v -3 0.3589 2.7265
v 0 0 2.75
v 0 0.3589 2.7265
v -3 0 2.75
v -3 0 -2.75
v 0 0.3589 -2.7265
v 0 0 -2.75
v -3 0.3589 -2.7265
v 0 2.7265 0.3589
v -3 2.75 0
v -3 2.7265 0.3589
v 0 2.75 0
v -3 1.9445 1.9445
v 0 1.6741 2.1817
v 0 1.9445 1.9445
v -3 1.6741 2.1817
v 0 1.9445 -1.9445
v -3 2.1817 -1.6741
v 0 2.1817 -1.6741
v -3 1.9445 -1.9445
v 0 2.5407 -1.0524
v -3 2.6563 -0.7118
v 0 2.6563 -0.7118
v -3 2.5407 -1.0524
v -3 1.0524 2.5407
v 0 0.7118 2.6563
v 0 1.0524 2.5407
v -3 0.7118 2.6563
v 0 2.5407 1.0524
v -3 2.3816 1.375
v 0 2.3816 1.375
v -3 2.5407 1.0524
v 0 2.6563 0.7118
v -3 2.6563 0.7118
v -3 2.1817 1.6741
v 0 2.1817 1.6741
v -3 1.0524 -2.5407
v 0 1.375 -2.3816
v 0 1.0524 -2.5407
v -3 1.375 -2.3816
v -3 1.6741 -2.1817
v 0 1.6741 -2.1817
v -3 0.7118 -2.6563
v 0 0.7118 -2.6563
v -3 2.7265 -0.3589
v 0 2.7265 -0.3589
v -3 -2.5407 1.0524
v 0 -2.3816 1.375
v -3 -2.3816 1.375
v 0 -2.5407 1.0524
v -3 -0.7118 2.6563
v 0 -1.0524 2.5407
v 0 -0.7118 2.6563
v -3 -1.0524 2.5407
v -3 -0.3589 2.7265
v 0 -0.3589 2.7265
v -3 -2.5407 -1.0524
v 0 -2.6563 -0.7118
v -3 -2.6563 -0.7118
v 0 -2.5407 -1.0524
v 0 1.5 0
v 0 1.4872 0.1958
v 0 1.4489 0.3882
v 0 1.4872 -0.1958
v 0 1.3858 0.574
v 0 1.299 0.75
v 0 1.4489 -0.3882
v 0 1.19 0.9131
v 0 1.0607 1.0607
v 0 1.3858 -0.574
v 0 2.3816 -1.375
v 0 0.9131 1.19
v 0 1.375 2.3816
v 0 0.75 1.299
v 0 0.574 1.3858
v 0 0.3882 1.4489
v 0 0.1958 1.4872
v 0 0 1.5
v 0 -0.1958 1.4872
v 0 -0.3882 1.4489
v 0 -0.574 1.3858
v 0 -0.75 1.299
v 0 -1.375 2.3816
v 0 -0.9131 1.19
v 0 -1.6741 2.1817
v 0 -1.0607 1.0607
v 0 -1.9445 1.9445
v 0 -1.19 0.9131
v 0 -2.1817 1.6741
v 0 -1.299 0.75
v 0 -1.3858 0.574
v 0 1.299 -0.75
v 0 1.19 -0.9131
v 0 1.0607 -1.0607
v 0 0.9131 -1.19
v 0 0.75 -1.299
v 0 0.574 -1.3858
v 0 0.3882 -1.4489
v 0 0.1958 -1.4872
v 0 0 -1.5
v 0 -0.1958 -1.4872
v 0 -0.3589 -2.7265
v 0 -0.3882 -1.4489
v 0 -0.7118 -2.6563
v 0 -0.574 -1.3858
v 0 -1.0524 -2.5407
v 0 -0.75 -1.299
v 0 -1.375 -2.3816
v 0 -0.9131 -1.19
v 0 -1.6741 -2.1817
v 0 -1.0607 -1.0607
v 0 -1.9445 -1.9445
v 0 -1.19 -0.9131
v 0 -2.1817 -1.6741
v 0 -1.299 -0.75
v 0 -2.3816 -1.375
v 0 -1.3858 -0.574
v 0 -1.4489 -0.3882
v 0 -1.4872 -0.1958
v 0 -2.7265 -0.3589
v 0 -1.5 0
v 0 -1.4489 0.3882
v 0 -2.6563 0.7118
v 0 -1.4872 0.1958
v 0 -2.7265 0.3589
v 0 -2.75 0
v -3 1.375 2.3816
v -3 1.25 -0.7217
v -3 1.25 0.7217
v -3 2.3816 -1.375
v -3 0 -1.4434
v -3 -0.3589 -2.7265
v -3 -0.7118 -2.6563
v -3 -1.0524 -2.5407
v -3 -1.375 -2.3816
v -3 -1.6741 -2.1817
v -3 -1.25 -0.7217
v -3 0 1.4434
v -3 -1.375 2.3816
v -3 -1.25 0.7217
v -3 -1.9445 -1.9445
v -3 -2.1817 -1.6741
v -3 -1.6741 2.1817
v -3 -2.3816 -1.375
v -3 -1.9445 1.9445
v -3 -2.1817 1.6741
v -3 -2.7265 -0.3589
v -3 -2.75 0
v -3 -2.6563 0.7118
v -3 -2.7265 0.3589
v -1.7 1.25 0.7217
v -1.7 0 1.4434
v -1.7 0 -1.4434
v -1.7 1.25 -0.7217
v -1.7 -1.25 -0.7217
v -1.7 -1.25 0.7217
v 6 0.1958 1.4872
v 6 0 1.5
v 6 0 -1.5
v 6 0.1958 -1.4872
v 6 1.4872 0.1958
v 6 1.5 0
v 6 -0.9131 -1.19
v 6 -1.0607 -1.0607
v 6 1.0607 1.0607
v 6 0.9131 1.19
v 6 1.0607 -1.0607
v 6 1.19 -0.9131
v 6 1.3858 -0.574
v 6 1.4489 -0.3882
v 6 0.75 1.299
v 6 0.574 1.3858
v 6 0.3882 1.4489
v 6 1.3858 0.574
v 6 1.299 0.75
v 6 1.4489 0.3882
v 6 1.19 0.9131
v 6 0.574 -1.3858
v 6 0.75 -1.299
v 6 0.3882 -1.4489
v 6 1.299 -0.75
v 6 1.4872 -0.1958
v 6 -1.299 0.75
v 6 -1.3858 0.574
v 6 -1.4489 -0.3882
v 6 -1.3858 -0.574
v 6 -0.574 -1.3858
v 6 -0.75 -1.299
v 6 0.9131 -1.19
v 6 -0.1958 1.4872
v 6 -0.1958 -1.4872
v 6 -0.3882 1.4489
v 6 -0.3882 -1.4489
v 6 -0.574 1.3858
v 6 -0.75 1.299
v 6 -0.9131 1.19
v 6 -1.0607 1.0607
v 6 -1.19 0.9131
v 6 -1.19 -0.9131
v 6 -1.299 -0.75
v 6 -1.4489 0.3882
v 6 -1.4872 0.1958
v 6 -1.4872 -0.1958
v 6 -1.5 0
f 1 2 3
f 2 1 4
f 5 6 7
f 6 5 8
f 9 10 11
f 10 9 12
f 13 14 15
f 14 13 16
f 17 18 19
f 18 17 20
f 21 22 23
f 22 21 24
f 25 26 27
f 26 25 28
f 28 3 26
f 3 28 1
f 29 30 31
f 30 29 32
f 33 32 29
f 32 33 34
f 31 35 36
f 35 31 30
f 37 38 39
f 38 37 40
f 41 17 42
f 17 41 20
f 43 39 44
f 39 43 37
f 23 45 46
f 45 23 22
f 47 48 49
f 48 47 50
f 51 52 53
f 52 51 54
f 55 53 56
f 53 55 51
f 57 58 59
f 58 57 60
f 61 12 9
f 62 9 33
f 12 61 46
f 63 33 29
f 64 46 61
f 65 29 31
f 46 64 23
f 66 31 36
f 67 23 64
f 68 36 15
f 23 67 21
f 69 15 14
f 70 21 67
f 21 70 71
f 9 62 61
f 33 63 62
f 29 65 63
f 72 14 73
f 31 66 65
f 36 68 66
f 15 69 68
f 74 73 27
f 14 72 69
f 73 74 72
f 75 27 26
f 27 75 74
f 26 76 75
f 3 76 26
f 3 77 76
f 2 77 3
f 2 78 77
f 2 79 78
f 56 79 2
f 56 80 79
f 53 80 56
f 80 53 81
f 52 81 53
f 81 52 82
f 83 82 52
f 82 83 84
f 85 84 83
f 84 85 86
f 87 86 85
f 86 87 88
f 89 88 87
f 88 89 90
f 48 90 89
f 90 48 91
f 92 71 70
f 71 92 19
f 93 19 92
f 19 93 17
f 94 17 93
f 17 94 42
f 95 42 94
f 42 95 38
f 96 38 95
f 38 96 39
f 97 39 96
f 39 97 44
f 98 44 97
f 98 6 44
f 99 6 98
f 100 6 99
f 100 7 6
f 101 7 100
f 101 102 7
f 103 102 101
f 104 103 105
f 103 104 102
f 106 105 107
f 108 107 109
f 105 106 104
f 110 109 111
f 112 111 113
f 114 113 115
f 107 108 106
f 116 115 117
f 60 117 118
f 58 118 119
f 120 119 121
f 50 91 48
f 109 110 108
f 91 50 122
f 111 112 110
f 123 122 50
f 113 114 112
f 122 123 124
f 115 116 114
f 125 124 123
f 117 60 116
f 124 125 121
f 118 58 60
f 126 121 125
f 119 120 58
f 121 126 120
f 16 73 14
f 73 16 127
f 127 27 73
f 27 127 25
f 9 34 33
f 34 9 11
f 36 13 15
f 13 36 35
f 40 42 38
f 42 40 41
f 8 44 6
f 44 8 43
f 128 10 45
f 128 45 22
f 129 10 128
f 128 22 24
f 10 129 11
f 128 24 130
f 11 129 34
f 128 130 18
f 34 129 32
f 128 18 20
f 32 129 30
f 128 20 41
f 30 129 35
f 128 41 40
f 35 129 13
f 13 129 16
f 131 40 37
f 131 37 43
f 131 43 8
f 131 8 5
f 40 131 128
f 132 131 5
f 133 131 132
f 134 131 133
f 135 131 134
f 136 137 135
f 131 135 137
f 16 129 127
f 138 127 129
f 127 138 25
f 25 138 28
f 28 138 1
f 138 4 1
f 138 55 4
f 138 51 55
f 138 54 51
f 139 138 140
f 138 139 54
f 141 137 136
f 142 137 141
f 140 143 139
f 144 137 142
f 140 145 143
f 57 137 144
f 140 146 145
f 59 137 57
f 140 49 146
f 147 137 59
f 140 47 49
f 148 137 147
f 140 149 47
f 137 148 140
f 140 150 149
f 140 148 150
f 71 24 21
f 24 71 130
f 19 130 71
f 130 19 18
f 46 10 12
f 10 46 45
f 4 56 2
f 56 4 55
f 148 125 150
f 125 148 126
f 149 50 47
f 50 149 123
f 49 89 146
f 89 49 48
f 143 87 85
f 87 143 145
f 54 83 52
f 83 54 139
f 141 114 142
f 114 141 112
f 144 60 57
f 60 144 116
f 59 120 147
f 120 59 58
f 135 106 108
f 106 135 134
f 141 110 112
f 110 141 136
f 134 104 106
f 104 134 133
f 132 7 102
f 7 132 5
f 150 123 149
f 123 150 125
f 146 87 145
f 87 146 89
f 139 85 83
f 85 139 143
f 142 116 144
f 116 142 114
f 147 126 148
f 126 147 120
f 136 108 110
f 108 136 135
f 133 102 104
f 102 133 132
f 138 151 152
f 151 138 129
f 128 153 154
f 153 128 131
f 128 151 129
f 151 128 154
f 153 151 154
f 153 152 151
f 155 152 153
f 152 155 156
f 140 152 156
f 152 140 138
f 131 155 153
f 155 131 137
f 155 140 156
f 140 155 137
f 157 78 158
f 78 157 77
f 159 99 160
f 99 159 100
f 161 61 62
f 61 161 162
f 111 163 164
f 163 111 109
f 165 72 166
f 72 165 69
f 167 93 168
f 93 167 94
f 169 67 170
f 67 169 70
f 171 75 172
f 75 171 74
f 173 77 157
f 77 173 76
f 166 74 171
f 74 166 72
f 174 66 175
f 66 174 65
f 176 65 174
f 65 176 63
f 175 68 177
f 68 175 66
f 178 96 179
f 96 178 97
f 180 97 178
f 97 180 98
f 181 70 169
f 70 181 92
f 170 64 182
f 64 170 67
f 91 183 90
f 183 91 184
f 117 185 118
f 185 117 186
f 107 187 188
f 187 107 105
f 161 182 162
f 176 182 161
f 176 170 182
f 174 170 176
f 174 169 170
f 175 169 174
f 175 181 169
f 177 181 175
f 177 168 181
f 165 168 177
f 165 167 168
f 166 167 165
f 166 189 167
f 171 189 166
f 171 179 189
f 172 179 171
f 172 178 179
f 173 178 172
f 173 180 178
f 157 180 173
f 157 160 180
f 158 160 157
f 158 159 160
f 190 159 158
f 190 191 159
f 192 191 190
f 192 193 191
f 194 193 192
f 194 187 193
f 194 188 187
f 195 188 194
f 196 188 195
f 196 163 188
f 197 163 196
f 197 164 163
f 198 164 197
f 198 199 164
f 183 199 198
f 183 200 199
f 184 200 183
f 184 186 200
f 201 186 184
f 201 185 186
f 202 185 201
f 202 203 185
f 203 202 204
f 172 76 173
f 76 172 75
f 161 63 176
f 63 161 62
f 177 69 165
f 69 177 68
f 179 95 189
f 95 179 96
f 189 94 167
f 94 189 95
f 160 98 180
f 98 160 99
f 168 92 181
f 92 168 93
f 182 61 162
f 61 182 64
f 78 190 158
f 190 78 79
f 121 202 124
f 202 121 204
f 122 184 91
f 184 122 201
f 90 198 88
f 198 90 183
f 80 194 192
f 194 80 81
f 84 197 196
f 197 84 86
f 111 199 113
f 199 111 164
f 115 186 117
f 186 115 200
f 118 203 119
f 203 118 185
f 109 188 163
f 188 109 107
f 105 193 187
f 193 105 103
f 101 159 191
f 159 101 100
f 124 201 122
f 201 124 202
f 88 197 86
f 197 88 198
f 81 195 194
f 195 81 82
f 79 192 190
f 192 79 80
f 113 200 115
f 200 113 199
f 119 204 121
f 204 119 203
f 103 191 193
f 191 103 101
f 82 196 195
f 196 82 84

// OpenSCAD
// file: ../../../lib/nutsnbolts/data-access.scad
// Norm Nuts and Bolts - a OpenSCAD library
// Copyright (C) 2012  Johannes Kneer

// This program is free software: you can redistribute it and/or modify
// it under the terms of the GNU General Public License as published by
// the Free Software Foundation, either version 3 of the License, or
// (at your option) any later version.

// This program is distributed in the hope that it will be useful,
// but WITHOUT ANY WARRANTY; without even the implied warranty of
// MERCHANTABILITY or FITNESS FOR A PARTICULAR PURPOSE.  See the
// GNU General Public License for more details.

// You should have received a copy of the GNU General Public License
// along with this program.  If not, see <http://www.gnu.org/licenses/>.


// DATABASE ACCESS FUNCTIONS AND CONSTANTS



// == CONSTANTS ==

// screw table access keys
_NB_S_DESC            = 0;
_NB_S_FAMKEY			    = 1;
_NB_S_LENGTH          = 2;
_NB_S_NOTHREAD_LENGTH = 3;

_NB_F_DESC			      = 0;
_NB_F_OUTER_DIA       = 1;
_NB_F_INNER_DIA       = 2;
_NB_F_LEAD            = 3;
_NB_F_KEY             = 4;
_NB_F_KEY_DEPTH       = 5;
_NB_F_HEAD_HEIGHT     = 6;
_NB_F_HEAD_DIA        = 7;
_NB_F_NUT_KEY         = 8;
_NB_F_NUT_HEIGHT      = 9;
_NB_F_PITCH_FINE      = 10;
_NB_F_PITCH_MEDIUM    = 11;
_NB_F_PITCH_COARSE    = 12;


// == FUNCTIONS ==

// _get_screw("descriptor")   with descriptor = M8x25
//   find the line for a general object in the data matrix

function _get_screw(n) = data_screw[search([n], data_screw)[0]];
function _get_screw_fam(n) = data_screw_fam[search([_get_screw(n)[_NB_S_FAMKEY]], data_screw_fam)[0]];

function _get_fam(n) = data_screw_fam[search([n], data_screw_fam)[0]];


// _get_XXXXX("descriptor") functions
// find a single property in the database

function _get_desc(n)        = _get_screw(n)[_NB_S_DESC];
function _get_famkey(n)         = _get_screw(n)[_NB_S_FAMKEY];
function _get_length(n)      = _get_screw(n)[_NB_S_LENGTH];
function _get_nt_length(n)   = _get_screw(n)[_NB_S_NOTHREAD_LENGTH];

function _get_outer_dia(n)   = _get_screw_fam(n)[_NB_F_OUTER_DIA];
function _get_inner_dia(n)   = _get_screw_fam(n)[_NB_F_INNER_DIA];
function _get_lead(n)        = _get_screw_fam(n)[_NB_F_LEAD];
function _get_head_height(n) = _get_screw_fam(n)[_NB_F_HEAD_HEIGHT];
function _get_head_dia(n)    = _get_screw_fam(n)[_NB_F_HEAD_DIA];
function _get_nut_key(n)     = _get_screw_fam(n)[_NB_F_NUT_KEY];
function _get_nut_height(n)  = _get_screw_fam(n)[_NB_F_NUT_HEIGHT];
function _get_fine_pitch(n)  = _get_screw_fam(n)[_NB_F_PITCH_FINE];
function _get_medium_pitch(n)  = _get_screw_fam(n)[_NB_F_PITCH_MEDIUM];
function _get_coarse_pitch(n)  = _get_screw_fam(n)[_NB_F_PITCH_COARSE];
// main file
/**********************************************************************************************************************
 **
 ** parts/vitamins/screw_M3x6.scad
 **
 ** This file renders a screw of the dimensions specified by the file name.
 **
 **********************************************************************************************************************/

include <../../../lib/nutsnbolts/cyl_head_bolt.scad>;

$fn = 48;
rotate([0, -90, 0])
	screw("M3x6"); 
